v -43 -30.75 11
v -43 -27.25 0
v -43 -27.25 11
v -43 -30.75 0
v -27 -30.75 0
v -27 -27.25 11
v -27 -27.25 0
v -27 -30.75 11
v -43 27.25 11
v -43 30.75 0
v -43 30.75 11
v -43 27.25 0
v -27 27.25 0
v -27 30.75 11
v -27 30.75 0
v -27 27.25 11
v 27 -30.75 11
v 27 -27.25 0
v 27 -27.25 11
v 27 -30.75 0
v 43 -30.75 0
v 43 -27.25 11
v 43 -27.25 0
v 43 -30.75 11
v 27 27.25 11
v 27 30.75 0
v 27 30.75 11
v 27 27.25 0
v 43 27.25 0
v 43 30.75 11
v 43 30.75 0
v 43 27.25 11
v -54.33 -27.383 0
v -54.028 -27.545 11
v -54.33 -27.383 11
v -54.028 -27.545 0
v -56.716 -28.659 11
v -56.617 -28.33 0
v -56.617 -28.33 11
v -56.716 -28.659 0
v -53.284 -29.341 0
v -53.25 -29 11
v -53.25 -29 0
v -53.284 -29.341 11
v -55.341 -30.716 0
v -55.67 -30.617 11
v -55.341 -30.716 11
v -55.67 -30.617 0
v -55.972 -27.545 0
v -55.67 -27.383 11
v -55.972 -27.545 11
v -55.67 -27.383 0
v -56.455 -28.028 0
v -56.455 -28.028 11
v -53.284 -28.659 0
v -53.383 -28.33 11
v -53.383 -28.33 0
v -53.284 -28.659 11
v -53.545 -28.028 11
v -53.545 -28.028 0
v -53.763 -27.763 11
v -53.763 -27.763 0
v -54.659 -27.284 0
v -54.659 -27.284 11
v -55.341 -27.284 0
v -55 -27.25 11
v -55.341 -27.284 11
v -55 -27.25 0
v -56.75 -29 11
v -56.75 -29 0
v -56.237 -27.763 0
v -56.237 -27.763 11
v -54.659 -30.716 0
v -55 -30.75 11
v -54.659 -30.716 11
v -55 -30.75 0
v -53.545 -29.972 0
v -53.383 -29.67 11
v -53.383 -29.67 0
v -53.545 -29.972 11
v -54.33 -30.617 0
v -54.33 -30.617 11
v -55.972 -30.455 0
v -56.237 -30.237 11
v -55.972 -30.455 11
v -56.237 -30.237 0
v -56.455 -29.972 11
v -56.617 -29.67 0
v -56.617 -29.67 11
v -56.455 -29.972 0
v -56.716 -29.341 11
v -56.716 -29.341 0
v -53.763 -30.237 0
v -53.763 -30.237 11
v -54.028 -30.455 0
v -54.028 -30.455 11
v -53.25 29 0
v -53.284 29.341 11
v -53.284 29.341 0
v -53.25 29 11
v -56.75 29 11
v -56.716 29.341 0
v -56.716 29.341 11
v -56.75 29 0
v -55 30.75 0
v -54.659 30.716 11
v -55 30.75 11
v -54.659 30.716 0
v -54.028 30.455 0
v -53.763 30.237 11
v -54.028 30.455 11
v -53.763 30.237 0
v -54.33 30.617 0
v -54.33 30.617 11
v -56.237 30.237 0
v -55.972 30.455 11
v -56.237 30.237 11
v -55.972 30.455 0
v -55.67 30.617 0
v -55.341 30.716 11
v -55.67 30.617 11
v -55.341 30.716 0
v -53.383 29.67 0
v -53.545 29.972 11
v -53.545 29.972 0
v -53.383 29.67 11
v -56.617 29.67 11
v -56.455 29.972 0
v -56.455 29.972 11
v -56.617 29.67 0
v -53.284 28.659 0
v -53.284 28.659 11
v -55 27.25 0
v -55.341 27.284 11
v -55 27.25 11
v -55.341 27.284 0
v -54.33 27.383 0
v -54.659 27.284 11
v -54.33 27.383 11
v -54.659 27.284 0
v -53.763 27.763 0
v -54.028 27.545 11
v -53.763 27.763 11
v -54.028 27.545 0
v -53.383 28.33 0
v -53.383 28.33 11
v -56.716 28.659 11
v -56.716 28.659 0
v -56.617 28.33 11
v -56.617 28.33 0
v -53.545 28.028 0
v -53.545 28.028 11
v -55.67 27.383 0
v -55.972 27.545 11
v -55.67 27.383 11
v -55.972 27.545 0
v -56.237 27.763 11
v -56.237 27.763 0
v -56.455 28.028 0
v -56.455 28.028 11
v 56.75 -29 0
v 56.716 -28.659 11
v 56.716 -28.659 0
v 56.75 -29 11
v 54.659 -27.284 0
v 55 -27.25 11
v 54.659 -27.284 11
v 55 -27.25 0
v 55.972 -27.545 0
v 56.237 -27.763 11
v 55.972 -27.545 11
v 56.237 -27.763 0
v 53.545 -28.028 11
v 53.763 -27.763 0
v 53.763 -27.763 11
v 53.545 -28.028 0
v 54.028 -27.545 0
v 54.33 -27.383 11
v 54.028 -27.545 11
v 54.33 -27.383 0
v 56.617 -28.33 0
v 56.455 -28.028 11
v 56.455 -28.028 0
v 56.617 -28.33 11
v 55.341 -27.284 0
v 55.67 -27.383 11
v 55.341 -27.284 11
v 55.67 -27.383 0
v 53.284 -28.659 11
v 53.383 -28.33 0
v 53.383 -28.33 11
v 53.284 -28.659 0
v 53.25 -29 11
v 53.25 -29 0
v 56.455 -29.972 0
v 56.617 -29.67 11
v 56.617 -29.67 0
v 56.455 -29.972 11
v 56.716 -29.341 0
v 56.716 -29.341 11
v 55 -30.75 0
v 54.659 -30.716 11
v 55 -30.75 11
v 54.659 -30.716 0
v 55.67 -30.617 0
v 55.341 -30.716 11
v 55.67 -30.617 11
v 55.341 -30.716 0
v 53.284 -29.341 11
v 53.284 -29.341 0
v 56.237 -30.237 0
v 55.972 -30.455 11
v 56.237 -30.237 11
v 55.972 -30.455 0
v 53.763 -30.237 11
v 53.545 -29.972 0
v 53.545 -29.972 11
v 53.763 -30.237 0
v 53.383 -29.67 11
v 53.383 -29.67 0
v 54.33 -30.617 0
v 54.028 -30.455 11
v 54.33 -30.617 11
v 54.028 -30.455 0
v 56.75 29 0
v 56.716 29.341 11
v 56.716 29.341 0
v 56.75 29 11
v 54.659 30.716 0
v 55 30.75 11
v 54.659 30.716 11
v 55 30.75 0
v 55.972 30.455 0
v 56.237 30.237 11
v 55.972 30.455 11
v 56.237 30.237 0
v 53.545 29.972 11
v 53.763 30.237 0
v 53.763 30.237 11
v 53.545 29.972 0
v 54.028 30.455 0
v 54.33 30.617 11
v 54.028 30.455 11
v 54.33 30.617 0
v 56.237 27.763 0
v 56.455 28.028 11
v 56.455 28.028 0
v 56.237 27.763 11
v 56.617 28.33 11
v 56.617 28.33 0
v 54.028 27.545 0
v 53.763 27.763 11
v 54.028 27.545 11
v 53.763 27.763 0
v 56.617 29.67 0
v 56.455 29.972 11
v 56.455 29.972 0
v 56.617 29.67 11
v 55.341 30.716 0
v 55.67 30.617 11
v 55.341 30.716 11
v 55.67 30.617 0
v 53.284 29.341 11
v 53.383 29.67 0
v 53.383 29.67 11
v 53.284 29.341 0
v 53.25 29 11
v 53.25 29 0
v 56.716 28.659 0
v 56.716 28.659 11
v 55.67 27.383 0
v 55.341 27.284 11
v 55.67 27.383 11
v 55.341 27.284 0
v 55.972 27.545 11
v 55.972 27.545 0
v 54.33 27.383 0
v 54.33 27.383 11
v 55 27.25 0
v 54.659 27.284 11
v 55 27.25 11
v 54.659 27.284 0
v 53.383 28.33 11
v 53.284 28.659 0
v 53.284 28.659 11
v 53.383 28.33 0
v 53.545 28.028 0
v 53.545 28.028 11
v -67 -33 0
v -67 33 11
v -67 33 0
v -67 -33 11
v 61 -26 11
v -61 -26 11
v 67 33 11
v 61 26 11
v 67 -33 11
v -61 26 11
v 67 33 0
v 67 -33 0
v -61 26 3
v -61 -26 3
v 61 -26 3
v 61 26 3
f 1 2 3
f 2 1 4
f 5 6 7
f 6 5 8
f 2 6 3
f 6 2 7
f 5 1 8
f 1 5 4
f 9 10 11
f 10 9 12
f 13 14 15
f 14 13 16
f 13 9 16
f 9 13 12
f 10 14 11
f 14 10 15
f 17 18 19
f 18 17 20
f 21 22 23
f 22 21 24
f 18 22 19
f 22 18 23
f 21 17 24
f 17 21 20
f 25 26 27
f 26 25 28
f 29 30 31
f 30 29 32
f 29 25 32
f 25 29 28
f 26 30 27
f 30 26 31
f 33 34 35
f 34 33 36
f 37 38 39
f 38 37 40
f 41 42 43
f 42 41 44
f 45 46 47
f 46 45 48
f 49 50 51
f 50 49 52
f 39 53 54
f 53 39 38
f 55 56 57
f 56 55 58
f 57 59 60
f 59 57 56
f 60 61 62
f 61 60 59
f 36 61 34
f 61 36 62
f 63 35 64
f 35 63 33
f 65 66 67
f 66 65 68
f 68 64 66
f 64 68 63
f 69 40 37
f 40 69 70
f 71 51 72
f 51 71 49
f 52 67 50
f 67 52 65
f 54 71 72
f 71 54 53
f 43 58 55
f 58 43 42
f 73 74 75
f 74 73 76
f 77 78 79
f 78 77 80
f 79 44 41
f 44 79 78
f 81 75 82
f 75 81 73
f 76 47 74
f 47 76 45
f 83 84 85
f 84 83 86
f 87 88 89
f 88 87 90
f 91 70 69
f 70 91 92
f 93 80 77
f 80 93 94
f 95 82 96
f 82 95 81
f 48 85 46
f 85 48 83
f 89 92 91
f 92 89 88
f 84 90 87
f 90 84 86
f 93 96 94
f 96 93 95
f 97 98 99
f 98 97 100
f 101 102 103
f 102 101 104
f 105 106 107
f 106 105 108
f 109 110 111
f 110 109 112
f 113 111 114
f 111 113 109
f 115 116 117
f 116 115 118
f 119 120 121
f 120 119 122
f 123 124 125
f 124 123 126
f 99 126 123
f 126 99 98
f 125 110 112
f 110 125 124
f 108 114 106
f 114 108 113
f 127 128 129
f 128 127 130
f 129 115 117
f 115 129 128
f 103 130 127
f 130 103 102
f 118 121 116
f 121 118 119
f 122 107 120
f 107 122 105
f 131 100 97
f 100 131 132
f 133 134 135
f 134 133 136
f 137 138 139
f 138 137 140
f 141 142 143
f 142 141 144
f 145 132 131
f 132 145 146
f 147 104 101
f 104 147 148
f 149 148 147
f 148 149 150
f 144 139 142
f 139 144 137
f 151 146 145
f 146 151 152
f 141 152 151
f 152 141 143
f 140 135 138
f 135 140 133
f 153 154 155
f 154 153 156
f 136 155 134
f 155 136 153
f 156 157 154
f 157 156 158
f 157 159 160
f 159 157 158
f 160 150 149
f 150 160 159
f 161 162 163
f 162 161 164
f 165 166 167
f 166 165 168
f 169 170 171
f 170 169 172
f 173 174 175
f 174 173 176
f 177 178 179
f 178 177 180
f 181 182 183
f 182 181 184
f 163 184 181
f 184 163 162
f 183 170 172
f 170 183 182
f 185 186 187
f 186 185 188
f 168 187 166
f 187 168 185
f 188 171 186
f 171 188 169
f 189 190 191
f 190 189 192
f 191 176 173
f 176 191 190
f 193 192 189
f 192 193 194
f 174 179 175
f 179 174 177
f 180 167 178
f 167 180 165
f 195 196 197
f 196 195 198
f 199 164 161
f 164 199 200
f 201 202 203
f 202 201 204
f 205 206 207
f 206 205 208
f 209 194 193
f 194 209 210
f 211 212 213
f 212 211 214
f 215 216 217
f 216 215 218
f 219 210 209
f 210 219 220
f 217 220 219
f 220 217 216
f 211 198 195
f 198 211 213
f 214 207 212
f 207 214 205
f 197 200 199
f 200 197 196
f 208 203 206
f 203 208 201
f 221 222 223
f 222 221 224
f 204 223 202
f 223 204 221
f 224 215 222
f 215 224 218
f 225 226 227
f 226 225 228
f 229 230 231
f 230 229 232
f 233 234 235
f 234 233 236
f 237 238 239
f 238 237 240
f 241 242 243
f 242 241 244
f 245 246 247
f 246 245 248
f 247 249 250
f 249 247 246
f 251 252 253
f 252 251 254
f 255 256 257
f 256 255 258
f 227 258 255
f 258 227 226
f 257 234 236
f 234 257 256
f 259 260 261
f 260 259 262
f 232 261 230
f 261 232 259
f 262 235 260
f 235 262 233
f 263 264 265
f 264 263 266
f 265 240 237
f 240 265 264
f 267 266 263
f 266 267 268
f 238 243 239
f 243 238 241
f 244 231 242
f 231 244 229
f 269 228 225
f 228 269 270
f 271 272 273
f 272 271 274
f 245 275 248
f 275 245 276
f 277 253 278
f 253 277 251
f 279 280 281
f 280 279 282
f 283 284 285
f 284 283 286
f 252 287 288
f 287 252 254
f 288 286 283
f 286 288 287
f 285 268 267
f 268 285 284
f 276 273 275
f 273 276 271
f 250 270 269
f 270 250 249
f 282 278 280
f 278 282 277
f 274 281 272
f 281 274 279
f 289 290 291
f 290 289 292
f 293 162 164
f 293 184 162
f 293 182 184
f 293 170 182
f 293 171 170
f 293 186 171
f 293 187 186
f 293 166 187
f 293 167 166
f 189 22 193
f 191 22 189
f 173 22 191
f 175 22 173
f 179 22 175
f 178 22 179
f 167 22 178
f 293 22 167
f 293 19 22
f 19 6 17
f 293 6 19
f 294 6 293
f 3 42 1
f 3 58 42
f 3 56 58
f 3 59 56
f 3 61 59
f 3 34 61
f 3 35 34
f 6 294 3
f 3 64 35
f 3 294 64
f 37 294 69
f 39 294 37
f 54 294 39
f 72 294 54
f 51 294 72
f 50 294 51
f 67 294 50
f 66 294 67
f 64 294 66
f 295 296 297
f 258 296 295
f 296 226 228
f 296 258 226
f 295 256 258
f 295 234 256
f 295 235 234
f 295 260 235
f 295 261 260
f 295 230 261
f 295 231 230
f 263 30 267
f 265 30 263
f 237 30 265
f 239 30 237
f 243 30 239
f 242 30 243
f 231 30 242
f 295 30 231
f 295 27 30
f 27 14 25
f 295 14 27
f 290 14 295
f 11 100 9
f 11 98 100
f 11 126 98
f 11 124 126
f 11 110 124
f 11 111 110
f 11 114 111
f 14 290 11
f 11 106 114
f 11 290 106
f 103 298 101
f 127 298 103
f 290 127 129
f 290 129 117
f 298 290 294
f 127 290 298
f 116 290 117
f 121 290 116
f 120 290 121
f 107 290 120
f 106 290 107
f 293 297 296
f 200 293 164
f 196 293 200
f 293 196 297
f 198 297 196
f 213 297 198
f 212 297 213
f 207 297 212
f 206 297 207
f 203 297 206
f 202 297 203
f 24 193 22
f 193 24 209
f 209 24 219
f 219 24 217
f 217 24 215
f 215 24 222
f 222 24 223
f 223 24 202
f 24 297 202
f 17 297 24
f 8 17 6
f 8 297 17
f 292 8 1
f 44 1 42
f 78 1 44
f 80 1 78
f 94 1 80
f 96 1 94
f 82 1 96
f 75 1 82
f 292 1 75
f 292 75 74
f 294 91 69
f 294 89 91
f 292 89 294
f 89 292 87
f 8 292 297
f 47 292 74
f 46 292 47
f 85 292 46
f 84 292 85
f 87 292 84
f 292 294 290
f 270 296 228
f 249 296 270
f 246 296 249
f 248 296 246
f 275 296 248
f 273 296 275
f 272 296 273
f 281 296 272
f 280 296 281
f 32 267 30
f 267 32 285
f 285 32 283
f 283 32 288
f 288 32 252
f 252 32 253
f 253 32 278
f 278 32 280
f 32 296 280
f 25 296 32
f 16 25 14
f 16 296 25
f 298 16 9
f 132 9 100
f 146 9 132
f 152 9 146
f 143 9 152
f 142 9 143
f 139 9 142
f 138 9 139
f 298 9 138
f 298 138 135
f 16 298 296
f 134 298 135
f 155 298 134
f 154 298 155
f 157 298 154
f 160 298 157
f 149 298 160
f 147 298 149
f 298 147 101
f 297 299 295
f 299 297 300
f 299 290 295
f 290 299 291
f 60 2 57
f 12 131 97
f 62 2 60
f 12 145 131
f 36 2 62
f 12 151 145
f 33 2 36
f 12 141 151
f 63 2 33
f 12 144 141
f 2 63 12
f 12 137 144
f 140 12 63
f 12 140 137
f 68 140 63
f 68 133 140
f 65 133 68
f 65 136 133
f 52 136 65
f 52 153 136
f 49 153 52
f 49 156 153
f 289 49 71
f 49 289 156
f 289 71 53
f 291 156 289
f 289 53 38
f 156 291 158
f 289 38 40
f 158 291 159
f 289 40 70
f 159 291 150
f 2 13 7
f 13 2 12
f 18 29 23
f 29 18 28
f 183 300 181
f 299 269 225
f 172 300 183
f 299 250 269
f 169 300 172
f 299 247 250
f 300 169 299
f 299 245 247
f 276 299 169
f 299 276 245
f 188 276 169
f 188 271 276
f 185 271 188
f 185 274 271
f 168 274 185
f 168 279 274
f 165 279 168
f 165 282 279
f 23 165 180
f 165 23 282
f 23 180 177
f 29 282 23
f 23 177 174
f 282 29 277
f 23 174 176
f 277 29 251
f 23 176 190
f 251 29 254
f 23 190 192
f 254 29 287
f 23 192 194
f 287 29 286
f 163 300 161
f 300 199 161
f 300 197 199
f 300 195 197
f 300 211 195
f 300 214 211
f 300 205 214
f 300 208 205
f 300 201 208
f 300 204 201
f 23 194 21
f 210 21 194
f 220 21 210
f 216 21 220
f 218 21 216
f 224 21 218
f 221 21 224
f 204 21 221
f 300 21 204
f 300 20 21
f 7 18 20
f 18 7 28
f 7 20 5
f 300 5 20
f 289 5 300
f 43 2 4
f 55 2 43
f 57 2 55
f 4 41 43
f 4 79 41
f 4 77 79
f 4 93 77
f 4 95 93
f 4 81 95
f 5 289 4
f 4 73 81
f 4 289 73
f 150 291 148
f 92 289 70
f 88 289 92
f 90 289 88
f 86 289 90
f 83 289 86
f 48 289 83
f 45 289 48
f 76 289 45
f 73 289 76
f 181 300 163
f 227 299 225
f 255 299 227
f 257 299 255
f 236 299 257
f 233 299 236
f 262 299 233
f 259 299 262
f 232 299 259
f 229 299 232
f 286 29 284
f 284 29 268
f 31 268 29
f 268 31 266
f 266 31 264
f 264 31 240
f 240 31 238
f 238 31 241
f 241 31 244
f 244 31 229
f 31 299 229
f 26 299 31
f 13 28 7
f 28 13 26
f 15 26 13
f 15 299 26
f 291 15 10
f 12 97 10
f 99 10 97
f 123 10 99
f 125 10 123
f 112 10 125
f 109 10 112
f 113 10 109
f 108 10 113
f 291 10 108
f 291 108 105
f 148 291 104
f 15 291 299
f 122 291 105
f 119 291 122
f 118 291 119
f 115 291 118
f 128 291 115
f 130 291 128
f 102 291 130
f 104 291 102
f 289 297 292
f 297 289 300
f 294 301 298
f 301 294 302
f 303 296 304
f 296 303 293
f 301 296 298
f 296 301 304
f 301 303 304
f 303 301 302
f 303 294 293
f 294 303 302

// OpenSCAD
// Provisional120 x50 x20mm conventional3S pack. Not a battery enclosure.
$fn=32;
view="print";
module tray(){
 difference(){
  translate([-67,-33,0]) cube([134,66,11]);
  translate([-61,-26,3]) cube([122,52,12]);
  for(x=[-35,35],y=[-29,29]) translate([x-8,y-1.75,-1]) cube([16,3.5,14]);
  for(x=[-55,55],y=[-29,29]) translate([x,y,-1]) cylinder(d=3.5,h=14);
 }
}
if(view=="print")tray();
else{
 color("orange")tray();
 color([.25,.25,.3,.6])translate([-60,-25,4])cube([120,50,20]);
 for(x=[-35,35])color("black")translate([x-7.5,-25,24])cube([15,50,1]);
}
